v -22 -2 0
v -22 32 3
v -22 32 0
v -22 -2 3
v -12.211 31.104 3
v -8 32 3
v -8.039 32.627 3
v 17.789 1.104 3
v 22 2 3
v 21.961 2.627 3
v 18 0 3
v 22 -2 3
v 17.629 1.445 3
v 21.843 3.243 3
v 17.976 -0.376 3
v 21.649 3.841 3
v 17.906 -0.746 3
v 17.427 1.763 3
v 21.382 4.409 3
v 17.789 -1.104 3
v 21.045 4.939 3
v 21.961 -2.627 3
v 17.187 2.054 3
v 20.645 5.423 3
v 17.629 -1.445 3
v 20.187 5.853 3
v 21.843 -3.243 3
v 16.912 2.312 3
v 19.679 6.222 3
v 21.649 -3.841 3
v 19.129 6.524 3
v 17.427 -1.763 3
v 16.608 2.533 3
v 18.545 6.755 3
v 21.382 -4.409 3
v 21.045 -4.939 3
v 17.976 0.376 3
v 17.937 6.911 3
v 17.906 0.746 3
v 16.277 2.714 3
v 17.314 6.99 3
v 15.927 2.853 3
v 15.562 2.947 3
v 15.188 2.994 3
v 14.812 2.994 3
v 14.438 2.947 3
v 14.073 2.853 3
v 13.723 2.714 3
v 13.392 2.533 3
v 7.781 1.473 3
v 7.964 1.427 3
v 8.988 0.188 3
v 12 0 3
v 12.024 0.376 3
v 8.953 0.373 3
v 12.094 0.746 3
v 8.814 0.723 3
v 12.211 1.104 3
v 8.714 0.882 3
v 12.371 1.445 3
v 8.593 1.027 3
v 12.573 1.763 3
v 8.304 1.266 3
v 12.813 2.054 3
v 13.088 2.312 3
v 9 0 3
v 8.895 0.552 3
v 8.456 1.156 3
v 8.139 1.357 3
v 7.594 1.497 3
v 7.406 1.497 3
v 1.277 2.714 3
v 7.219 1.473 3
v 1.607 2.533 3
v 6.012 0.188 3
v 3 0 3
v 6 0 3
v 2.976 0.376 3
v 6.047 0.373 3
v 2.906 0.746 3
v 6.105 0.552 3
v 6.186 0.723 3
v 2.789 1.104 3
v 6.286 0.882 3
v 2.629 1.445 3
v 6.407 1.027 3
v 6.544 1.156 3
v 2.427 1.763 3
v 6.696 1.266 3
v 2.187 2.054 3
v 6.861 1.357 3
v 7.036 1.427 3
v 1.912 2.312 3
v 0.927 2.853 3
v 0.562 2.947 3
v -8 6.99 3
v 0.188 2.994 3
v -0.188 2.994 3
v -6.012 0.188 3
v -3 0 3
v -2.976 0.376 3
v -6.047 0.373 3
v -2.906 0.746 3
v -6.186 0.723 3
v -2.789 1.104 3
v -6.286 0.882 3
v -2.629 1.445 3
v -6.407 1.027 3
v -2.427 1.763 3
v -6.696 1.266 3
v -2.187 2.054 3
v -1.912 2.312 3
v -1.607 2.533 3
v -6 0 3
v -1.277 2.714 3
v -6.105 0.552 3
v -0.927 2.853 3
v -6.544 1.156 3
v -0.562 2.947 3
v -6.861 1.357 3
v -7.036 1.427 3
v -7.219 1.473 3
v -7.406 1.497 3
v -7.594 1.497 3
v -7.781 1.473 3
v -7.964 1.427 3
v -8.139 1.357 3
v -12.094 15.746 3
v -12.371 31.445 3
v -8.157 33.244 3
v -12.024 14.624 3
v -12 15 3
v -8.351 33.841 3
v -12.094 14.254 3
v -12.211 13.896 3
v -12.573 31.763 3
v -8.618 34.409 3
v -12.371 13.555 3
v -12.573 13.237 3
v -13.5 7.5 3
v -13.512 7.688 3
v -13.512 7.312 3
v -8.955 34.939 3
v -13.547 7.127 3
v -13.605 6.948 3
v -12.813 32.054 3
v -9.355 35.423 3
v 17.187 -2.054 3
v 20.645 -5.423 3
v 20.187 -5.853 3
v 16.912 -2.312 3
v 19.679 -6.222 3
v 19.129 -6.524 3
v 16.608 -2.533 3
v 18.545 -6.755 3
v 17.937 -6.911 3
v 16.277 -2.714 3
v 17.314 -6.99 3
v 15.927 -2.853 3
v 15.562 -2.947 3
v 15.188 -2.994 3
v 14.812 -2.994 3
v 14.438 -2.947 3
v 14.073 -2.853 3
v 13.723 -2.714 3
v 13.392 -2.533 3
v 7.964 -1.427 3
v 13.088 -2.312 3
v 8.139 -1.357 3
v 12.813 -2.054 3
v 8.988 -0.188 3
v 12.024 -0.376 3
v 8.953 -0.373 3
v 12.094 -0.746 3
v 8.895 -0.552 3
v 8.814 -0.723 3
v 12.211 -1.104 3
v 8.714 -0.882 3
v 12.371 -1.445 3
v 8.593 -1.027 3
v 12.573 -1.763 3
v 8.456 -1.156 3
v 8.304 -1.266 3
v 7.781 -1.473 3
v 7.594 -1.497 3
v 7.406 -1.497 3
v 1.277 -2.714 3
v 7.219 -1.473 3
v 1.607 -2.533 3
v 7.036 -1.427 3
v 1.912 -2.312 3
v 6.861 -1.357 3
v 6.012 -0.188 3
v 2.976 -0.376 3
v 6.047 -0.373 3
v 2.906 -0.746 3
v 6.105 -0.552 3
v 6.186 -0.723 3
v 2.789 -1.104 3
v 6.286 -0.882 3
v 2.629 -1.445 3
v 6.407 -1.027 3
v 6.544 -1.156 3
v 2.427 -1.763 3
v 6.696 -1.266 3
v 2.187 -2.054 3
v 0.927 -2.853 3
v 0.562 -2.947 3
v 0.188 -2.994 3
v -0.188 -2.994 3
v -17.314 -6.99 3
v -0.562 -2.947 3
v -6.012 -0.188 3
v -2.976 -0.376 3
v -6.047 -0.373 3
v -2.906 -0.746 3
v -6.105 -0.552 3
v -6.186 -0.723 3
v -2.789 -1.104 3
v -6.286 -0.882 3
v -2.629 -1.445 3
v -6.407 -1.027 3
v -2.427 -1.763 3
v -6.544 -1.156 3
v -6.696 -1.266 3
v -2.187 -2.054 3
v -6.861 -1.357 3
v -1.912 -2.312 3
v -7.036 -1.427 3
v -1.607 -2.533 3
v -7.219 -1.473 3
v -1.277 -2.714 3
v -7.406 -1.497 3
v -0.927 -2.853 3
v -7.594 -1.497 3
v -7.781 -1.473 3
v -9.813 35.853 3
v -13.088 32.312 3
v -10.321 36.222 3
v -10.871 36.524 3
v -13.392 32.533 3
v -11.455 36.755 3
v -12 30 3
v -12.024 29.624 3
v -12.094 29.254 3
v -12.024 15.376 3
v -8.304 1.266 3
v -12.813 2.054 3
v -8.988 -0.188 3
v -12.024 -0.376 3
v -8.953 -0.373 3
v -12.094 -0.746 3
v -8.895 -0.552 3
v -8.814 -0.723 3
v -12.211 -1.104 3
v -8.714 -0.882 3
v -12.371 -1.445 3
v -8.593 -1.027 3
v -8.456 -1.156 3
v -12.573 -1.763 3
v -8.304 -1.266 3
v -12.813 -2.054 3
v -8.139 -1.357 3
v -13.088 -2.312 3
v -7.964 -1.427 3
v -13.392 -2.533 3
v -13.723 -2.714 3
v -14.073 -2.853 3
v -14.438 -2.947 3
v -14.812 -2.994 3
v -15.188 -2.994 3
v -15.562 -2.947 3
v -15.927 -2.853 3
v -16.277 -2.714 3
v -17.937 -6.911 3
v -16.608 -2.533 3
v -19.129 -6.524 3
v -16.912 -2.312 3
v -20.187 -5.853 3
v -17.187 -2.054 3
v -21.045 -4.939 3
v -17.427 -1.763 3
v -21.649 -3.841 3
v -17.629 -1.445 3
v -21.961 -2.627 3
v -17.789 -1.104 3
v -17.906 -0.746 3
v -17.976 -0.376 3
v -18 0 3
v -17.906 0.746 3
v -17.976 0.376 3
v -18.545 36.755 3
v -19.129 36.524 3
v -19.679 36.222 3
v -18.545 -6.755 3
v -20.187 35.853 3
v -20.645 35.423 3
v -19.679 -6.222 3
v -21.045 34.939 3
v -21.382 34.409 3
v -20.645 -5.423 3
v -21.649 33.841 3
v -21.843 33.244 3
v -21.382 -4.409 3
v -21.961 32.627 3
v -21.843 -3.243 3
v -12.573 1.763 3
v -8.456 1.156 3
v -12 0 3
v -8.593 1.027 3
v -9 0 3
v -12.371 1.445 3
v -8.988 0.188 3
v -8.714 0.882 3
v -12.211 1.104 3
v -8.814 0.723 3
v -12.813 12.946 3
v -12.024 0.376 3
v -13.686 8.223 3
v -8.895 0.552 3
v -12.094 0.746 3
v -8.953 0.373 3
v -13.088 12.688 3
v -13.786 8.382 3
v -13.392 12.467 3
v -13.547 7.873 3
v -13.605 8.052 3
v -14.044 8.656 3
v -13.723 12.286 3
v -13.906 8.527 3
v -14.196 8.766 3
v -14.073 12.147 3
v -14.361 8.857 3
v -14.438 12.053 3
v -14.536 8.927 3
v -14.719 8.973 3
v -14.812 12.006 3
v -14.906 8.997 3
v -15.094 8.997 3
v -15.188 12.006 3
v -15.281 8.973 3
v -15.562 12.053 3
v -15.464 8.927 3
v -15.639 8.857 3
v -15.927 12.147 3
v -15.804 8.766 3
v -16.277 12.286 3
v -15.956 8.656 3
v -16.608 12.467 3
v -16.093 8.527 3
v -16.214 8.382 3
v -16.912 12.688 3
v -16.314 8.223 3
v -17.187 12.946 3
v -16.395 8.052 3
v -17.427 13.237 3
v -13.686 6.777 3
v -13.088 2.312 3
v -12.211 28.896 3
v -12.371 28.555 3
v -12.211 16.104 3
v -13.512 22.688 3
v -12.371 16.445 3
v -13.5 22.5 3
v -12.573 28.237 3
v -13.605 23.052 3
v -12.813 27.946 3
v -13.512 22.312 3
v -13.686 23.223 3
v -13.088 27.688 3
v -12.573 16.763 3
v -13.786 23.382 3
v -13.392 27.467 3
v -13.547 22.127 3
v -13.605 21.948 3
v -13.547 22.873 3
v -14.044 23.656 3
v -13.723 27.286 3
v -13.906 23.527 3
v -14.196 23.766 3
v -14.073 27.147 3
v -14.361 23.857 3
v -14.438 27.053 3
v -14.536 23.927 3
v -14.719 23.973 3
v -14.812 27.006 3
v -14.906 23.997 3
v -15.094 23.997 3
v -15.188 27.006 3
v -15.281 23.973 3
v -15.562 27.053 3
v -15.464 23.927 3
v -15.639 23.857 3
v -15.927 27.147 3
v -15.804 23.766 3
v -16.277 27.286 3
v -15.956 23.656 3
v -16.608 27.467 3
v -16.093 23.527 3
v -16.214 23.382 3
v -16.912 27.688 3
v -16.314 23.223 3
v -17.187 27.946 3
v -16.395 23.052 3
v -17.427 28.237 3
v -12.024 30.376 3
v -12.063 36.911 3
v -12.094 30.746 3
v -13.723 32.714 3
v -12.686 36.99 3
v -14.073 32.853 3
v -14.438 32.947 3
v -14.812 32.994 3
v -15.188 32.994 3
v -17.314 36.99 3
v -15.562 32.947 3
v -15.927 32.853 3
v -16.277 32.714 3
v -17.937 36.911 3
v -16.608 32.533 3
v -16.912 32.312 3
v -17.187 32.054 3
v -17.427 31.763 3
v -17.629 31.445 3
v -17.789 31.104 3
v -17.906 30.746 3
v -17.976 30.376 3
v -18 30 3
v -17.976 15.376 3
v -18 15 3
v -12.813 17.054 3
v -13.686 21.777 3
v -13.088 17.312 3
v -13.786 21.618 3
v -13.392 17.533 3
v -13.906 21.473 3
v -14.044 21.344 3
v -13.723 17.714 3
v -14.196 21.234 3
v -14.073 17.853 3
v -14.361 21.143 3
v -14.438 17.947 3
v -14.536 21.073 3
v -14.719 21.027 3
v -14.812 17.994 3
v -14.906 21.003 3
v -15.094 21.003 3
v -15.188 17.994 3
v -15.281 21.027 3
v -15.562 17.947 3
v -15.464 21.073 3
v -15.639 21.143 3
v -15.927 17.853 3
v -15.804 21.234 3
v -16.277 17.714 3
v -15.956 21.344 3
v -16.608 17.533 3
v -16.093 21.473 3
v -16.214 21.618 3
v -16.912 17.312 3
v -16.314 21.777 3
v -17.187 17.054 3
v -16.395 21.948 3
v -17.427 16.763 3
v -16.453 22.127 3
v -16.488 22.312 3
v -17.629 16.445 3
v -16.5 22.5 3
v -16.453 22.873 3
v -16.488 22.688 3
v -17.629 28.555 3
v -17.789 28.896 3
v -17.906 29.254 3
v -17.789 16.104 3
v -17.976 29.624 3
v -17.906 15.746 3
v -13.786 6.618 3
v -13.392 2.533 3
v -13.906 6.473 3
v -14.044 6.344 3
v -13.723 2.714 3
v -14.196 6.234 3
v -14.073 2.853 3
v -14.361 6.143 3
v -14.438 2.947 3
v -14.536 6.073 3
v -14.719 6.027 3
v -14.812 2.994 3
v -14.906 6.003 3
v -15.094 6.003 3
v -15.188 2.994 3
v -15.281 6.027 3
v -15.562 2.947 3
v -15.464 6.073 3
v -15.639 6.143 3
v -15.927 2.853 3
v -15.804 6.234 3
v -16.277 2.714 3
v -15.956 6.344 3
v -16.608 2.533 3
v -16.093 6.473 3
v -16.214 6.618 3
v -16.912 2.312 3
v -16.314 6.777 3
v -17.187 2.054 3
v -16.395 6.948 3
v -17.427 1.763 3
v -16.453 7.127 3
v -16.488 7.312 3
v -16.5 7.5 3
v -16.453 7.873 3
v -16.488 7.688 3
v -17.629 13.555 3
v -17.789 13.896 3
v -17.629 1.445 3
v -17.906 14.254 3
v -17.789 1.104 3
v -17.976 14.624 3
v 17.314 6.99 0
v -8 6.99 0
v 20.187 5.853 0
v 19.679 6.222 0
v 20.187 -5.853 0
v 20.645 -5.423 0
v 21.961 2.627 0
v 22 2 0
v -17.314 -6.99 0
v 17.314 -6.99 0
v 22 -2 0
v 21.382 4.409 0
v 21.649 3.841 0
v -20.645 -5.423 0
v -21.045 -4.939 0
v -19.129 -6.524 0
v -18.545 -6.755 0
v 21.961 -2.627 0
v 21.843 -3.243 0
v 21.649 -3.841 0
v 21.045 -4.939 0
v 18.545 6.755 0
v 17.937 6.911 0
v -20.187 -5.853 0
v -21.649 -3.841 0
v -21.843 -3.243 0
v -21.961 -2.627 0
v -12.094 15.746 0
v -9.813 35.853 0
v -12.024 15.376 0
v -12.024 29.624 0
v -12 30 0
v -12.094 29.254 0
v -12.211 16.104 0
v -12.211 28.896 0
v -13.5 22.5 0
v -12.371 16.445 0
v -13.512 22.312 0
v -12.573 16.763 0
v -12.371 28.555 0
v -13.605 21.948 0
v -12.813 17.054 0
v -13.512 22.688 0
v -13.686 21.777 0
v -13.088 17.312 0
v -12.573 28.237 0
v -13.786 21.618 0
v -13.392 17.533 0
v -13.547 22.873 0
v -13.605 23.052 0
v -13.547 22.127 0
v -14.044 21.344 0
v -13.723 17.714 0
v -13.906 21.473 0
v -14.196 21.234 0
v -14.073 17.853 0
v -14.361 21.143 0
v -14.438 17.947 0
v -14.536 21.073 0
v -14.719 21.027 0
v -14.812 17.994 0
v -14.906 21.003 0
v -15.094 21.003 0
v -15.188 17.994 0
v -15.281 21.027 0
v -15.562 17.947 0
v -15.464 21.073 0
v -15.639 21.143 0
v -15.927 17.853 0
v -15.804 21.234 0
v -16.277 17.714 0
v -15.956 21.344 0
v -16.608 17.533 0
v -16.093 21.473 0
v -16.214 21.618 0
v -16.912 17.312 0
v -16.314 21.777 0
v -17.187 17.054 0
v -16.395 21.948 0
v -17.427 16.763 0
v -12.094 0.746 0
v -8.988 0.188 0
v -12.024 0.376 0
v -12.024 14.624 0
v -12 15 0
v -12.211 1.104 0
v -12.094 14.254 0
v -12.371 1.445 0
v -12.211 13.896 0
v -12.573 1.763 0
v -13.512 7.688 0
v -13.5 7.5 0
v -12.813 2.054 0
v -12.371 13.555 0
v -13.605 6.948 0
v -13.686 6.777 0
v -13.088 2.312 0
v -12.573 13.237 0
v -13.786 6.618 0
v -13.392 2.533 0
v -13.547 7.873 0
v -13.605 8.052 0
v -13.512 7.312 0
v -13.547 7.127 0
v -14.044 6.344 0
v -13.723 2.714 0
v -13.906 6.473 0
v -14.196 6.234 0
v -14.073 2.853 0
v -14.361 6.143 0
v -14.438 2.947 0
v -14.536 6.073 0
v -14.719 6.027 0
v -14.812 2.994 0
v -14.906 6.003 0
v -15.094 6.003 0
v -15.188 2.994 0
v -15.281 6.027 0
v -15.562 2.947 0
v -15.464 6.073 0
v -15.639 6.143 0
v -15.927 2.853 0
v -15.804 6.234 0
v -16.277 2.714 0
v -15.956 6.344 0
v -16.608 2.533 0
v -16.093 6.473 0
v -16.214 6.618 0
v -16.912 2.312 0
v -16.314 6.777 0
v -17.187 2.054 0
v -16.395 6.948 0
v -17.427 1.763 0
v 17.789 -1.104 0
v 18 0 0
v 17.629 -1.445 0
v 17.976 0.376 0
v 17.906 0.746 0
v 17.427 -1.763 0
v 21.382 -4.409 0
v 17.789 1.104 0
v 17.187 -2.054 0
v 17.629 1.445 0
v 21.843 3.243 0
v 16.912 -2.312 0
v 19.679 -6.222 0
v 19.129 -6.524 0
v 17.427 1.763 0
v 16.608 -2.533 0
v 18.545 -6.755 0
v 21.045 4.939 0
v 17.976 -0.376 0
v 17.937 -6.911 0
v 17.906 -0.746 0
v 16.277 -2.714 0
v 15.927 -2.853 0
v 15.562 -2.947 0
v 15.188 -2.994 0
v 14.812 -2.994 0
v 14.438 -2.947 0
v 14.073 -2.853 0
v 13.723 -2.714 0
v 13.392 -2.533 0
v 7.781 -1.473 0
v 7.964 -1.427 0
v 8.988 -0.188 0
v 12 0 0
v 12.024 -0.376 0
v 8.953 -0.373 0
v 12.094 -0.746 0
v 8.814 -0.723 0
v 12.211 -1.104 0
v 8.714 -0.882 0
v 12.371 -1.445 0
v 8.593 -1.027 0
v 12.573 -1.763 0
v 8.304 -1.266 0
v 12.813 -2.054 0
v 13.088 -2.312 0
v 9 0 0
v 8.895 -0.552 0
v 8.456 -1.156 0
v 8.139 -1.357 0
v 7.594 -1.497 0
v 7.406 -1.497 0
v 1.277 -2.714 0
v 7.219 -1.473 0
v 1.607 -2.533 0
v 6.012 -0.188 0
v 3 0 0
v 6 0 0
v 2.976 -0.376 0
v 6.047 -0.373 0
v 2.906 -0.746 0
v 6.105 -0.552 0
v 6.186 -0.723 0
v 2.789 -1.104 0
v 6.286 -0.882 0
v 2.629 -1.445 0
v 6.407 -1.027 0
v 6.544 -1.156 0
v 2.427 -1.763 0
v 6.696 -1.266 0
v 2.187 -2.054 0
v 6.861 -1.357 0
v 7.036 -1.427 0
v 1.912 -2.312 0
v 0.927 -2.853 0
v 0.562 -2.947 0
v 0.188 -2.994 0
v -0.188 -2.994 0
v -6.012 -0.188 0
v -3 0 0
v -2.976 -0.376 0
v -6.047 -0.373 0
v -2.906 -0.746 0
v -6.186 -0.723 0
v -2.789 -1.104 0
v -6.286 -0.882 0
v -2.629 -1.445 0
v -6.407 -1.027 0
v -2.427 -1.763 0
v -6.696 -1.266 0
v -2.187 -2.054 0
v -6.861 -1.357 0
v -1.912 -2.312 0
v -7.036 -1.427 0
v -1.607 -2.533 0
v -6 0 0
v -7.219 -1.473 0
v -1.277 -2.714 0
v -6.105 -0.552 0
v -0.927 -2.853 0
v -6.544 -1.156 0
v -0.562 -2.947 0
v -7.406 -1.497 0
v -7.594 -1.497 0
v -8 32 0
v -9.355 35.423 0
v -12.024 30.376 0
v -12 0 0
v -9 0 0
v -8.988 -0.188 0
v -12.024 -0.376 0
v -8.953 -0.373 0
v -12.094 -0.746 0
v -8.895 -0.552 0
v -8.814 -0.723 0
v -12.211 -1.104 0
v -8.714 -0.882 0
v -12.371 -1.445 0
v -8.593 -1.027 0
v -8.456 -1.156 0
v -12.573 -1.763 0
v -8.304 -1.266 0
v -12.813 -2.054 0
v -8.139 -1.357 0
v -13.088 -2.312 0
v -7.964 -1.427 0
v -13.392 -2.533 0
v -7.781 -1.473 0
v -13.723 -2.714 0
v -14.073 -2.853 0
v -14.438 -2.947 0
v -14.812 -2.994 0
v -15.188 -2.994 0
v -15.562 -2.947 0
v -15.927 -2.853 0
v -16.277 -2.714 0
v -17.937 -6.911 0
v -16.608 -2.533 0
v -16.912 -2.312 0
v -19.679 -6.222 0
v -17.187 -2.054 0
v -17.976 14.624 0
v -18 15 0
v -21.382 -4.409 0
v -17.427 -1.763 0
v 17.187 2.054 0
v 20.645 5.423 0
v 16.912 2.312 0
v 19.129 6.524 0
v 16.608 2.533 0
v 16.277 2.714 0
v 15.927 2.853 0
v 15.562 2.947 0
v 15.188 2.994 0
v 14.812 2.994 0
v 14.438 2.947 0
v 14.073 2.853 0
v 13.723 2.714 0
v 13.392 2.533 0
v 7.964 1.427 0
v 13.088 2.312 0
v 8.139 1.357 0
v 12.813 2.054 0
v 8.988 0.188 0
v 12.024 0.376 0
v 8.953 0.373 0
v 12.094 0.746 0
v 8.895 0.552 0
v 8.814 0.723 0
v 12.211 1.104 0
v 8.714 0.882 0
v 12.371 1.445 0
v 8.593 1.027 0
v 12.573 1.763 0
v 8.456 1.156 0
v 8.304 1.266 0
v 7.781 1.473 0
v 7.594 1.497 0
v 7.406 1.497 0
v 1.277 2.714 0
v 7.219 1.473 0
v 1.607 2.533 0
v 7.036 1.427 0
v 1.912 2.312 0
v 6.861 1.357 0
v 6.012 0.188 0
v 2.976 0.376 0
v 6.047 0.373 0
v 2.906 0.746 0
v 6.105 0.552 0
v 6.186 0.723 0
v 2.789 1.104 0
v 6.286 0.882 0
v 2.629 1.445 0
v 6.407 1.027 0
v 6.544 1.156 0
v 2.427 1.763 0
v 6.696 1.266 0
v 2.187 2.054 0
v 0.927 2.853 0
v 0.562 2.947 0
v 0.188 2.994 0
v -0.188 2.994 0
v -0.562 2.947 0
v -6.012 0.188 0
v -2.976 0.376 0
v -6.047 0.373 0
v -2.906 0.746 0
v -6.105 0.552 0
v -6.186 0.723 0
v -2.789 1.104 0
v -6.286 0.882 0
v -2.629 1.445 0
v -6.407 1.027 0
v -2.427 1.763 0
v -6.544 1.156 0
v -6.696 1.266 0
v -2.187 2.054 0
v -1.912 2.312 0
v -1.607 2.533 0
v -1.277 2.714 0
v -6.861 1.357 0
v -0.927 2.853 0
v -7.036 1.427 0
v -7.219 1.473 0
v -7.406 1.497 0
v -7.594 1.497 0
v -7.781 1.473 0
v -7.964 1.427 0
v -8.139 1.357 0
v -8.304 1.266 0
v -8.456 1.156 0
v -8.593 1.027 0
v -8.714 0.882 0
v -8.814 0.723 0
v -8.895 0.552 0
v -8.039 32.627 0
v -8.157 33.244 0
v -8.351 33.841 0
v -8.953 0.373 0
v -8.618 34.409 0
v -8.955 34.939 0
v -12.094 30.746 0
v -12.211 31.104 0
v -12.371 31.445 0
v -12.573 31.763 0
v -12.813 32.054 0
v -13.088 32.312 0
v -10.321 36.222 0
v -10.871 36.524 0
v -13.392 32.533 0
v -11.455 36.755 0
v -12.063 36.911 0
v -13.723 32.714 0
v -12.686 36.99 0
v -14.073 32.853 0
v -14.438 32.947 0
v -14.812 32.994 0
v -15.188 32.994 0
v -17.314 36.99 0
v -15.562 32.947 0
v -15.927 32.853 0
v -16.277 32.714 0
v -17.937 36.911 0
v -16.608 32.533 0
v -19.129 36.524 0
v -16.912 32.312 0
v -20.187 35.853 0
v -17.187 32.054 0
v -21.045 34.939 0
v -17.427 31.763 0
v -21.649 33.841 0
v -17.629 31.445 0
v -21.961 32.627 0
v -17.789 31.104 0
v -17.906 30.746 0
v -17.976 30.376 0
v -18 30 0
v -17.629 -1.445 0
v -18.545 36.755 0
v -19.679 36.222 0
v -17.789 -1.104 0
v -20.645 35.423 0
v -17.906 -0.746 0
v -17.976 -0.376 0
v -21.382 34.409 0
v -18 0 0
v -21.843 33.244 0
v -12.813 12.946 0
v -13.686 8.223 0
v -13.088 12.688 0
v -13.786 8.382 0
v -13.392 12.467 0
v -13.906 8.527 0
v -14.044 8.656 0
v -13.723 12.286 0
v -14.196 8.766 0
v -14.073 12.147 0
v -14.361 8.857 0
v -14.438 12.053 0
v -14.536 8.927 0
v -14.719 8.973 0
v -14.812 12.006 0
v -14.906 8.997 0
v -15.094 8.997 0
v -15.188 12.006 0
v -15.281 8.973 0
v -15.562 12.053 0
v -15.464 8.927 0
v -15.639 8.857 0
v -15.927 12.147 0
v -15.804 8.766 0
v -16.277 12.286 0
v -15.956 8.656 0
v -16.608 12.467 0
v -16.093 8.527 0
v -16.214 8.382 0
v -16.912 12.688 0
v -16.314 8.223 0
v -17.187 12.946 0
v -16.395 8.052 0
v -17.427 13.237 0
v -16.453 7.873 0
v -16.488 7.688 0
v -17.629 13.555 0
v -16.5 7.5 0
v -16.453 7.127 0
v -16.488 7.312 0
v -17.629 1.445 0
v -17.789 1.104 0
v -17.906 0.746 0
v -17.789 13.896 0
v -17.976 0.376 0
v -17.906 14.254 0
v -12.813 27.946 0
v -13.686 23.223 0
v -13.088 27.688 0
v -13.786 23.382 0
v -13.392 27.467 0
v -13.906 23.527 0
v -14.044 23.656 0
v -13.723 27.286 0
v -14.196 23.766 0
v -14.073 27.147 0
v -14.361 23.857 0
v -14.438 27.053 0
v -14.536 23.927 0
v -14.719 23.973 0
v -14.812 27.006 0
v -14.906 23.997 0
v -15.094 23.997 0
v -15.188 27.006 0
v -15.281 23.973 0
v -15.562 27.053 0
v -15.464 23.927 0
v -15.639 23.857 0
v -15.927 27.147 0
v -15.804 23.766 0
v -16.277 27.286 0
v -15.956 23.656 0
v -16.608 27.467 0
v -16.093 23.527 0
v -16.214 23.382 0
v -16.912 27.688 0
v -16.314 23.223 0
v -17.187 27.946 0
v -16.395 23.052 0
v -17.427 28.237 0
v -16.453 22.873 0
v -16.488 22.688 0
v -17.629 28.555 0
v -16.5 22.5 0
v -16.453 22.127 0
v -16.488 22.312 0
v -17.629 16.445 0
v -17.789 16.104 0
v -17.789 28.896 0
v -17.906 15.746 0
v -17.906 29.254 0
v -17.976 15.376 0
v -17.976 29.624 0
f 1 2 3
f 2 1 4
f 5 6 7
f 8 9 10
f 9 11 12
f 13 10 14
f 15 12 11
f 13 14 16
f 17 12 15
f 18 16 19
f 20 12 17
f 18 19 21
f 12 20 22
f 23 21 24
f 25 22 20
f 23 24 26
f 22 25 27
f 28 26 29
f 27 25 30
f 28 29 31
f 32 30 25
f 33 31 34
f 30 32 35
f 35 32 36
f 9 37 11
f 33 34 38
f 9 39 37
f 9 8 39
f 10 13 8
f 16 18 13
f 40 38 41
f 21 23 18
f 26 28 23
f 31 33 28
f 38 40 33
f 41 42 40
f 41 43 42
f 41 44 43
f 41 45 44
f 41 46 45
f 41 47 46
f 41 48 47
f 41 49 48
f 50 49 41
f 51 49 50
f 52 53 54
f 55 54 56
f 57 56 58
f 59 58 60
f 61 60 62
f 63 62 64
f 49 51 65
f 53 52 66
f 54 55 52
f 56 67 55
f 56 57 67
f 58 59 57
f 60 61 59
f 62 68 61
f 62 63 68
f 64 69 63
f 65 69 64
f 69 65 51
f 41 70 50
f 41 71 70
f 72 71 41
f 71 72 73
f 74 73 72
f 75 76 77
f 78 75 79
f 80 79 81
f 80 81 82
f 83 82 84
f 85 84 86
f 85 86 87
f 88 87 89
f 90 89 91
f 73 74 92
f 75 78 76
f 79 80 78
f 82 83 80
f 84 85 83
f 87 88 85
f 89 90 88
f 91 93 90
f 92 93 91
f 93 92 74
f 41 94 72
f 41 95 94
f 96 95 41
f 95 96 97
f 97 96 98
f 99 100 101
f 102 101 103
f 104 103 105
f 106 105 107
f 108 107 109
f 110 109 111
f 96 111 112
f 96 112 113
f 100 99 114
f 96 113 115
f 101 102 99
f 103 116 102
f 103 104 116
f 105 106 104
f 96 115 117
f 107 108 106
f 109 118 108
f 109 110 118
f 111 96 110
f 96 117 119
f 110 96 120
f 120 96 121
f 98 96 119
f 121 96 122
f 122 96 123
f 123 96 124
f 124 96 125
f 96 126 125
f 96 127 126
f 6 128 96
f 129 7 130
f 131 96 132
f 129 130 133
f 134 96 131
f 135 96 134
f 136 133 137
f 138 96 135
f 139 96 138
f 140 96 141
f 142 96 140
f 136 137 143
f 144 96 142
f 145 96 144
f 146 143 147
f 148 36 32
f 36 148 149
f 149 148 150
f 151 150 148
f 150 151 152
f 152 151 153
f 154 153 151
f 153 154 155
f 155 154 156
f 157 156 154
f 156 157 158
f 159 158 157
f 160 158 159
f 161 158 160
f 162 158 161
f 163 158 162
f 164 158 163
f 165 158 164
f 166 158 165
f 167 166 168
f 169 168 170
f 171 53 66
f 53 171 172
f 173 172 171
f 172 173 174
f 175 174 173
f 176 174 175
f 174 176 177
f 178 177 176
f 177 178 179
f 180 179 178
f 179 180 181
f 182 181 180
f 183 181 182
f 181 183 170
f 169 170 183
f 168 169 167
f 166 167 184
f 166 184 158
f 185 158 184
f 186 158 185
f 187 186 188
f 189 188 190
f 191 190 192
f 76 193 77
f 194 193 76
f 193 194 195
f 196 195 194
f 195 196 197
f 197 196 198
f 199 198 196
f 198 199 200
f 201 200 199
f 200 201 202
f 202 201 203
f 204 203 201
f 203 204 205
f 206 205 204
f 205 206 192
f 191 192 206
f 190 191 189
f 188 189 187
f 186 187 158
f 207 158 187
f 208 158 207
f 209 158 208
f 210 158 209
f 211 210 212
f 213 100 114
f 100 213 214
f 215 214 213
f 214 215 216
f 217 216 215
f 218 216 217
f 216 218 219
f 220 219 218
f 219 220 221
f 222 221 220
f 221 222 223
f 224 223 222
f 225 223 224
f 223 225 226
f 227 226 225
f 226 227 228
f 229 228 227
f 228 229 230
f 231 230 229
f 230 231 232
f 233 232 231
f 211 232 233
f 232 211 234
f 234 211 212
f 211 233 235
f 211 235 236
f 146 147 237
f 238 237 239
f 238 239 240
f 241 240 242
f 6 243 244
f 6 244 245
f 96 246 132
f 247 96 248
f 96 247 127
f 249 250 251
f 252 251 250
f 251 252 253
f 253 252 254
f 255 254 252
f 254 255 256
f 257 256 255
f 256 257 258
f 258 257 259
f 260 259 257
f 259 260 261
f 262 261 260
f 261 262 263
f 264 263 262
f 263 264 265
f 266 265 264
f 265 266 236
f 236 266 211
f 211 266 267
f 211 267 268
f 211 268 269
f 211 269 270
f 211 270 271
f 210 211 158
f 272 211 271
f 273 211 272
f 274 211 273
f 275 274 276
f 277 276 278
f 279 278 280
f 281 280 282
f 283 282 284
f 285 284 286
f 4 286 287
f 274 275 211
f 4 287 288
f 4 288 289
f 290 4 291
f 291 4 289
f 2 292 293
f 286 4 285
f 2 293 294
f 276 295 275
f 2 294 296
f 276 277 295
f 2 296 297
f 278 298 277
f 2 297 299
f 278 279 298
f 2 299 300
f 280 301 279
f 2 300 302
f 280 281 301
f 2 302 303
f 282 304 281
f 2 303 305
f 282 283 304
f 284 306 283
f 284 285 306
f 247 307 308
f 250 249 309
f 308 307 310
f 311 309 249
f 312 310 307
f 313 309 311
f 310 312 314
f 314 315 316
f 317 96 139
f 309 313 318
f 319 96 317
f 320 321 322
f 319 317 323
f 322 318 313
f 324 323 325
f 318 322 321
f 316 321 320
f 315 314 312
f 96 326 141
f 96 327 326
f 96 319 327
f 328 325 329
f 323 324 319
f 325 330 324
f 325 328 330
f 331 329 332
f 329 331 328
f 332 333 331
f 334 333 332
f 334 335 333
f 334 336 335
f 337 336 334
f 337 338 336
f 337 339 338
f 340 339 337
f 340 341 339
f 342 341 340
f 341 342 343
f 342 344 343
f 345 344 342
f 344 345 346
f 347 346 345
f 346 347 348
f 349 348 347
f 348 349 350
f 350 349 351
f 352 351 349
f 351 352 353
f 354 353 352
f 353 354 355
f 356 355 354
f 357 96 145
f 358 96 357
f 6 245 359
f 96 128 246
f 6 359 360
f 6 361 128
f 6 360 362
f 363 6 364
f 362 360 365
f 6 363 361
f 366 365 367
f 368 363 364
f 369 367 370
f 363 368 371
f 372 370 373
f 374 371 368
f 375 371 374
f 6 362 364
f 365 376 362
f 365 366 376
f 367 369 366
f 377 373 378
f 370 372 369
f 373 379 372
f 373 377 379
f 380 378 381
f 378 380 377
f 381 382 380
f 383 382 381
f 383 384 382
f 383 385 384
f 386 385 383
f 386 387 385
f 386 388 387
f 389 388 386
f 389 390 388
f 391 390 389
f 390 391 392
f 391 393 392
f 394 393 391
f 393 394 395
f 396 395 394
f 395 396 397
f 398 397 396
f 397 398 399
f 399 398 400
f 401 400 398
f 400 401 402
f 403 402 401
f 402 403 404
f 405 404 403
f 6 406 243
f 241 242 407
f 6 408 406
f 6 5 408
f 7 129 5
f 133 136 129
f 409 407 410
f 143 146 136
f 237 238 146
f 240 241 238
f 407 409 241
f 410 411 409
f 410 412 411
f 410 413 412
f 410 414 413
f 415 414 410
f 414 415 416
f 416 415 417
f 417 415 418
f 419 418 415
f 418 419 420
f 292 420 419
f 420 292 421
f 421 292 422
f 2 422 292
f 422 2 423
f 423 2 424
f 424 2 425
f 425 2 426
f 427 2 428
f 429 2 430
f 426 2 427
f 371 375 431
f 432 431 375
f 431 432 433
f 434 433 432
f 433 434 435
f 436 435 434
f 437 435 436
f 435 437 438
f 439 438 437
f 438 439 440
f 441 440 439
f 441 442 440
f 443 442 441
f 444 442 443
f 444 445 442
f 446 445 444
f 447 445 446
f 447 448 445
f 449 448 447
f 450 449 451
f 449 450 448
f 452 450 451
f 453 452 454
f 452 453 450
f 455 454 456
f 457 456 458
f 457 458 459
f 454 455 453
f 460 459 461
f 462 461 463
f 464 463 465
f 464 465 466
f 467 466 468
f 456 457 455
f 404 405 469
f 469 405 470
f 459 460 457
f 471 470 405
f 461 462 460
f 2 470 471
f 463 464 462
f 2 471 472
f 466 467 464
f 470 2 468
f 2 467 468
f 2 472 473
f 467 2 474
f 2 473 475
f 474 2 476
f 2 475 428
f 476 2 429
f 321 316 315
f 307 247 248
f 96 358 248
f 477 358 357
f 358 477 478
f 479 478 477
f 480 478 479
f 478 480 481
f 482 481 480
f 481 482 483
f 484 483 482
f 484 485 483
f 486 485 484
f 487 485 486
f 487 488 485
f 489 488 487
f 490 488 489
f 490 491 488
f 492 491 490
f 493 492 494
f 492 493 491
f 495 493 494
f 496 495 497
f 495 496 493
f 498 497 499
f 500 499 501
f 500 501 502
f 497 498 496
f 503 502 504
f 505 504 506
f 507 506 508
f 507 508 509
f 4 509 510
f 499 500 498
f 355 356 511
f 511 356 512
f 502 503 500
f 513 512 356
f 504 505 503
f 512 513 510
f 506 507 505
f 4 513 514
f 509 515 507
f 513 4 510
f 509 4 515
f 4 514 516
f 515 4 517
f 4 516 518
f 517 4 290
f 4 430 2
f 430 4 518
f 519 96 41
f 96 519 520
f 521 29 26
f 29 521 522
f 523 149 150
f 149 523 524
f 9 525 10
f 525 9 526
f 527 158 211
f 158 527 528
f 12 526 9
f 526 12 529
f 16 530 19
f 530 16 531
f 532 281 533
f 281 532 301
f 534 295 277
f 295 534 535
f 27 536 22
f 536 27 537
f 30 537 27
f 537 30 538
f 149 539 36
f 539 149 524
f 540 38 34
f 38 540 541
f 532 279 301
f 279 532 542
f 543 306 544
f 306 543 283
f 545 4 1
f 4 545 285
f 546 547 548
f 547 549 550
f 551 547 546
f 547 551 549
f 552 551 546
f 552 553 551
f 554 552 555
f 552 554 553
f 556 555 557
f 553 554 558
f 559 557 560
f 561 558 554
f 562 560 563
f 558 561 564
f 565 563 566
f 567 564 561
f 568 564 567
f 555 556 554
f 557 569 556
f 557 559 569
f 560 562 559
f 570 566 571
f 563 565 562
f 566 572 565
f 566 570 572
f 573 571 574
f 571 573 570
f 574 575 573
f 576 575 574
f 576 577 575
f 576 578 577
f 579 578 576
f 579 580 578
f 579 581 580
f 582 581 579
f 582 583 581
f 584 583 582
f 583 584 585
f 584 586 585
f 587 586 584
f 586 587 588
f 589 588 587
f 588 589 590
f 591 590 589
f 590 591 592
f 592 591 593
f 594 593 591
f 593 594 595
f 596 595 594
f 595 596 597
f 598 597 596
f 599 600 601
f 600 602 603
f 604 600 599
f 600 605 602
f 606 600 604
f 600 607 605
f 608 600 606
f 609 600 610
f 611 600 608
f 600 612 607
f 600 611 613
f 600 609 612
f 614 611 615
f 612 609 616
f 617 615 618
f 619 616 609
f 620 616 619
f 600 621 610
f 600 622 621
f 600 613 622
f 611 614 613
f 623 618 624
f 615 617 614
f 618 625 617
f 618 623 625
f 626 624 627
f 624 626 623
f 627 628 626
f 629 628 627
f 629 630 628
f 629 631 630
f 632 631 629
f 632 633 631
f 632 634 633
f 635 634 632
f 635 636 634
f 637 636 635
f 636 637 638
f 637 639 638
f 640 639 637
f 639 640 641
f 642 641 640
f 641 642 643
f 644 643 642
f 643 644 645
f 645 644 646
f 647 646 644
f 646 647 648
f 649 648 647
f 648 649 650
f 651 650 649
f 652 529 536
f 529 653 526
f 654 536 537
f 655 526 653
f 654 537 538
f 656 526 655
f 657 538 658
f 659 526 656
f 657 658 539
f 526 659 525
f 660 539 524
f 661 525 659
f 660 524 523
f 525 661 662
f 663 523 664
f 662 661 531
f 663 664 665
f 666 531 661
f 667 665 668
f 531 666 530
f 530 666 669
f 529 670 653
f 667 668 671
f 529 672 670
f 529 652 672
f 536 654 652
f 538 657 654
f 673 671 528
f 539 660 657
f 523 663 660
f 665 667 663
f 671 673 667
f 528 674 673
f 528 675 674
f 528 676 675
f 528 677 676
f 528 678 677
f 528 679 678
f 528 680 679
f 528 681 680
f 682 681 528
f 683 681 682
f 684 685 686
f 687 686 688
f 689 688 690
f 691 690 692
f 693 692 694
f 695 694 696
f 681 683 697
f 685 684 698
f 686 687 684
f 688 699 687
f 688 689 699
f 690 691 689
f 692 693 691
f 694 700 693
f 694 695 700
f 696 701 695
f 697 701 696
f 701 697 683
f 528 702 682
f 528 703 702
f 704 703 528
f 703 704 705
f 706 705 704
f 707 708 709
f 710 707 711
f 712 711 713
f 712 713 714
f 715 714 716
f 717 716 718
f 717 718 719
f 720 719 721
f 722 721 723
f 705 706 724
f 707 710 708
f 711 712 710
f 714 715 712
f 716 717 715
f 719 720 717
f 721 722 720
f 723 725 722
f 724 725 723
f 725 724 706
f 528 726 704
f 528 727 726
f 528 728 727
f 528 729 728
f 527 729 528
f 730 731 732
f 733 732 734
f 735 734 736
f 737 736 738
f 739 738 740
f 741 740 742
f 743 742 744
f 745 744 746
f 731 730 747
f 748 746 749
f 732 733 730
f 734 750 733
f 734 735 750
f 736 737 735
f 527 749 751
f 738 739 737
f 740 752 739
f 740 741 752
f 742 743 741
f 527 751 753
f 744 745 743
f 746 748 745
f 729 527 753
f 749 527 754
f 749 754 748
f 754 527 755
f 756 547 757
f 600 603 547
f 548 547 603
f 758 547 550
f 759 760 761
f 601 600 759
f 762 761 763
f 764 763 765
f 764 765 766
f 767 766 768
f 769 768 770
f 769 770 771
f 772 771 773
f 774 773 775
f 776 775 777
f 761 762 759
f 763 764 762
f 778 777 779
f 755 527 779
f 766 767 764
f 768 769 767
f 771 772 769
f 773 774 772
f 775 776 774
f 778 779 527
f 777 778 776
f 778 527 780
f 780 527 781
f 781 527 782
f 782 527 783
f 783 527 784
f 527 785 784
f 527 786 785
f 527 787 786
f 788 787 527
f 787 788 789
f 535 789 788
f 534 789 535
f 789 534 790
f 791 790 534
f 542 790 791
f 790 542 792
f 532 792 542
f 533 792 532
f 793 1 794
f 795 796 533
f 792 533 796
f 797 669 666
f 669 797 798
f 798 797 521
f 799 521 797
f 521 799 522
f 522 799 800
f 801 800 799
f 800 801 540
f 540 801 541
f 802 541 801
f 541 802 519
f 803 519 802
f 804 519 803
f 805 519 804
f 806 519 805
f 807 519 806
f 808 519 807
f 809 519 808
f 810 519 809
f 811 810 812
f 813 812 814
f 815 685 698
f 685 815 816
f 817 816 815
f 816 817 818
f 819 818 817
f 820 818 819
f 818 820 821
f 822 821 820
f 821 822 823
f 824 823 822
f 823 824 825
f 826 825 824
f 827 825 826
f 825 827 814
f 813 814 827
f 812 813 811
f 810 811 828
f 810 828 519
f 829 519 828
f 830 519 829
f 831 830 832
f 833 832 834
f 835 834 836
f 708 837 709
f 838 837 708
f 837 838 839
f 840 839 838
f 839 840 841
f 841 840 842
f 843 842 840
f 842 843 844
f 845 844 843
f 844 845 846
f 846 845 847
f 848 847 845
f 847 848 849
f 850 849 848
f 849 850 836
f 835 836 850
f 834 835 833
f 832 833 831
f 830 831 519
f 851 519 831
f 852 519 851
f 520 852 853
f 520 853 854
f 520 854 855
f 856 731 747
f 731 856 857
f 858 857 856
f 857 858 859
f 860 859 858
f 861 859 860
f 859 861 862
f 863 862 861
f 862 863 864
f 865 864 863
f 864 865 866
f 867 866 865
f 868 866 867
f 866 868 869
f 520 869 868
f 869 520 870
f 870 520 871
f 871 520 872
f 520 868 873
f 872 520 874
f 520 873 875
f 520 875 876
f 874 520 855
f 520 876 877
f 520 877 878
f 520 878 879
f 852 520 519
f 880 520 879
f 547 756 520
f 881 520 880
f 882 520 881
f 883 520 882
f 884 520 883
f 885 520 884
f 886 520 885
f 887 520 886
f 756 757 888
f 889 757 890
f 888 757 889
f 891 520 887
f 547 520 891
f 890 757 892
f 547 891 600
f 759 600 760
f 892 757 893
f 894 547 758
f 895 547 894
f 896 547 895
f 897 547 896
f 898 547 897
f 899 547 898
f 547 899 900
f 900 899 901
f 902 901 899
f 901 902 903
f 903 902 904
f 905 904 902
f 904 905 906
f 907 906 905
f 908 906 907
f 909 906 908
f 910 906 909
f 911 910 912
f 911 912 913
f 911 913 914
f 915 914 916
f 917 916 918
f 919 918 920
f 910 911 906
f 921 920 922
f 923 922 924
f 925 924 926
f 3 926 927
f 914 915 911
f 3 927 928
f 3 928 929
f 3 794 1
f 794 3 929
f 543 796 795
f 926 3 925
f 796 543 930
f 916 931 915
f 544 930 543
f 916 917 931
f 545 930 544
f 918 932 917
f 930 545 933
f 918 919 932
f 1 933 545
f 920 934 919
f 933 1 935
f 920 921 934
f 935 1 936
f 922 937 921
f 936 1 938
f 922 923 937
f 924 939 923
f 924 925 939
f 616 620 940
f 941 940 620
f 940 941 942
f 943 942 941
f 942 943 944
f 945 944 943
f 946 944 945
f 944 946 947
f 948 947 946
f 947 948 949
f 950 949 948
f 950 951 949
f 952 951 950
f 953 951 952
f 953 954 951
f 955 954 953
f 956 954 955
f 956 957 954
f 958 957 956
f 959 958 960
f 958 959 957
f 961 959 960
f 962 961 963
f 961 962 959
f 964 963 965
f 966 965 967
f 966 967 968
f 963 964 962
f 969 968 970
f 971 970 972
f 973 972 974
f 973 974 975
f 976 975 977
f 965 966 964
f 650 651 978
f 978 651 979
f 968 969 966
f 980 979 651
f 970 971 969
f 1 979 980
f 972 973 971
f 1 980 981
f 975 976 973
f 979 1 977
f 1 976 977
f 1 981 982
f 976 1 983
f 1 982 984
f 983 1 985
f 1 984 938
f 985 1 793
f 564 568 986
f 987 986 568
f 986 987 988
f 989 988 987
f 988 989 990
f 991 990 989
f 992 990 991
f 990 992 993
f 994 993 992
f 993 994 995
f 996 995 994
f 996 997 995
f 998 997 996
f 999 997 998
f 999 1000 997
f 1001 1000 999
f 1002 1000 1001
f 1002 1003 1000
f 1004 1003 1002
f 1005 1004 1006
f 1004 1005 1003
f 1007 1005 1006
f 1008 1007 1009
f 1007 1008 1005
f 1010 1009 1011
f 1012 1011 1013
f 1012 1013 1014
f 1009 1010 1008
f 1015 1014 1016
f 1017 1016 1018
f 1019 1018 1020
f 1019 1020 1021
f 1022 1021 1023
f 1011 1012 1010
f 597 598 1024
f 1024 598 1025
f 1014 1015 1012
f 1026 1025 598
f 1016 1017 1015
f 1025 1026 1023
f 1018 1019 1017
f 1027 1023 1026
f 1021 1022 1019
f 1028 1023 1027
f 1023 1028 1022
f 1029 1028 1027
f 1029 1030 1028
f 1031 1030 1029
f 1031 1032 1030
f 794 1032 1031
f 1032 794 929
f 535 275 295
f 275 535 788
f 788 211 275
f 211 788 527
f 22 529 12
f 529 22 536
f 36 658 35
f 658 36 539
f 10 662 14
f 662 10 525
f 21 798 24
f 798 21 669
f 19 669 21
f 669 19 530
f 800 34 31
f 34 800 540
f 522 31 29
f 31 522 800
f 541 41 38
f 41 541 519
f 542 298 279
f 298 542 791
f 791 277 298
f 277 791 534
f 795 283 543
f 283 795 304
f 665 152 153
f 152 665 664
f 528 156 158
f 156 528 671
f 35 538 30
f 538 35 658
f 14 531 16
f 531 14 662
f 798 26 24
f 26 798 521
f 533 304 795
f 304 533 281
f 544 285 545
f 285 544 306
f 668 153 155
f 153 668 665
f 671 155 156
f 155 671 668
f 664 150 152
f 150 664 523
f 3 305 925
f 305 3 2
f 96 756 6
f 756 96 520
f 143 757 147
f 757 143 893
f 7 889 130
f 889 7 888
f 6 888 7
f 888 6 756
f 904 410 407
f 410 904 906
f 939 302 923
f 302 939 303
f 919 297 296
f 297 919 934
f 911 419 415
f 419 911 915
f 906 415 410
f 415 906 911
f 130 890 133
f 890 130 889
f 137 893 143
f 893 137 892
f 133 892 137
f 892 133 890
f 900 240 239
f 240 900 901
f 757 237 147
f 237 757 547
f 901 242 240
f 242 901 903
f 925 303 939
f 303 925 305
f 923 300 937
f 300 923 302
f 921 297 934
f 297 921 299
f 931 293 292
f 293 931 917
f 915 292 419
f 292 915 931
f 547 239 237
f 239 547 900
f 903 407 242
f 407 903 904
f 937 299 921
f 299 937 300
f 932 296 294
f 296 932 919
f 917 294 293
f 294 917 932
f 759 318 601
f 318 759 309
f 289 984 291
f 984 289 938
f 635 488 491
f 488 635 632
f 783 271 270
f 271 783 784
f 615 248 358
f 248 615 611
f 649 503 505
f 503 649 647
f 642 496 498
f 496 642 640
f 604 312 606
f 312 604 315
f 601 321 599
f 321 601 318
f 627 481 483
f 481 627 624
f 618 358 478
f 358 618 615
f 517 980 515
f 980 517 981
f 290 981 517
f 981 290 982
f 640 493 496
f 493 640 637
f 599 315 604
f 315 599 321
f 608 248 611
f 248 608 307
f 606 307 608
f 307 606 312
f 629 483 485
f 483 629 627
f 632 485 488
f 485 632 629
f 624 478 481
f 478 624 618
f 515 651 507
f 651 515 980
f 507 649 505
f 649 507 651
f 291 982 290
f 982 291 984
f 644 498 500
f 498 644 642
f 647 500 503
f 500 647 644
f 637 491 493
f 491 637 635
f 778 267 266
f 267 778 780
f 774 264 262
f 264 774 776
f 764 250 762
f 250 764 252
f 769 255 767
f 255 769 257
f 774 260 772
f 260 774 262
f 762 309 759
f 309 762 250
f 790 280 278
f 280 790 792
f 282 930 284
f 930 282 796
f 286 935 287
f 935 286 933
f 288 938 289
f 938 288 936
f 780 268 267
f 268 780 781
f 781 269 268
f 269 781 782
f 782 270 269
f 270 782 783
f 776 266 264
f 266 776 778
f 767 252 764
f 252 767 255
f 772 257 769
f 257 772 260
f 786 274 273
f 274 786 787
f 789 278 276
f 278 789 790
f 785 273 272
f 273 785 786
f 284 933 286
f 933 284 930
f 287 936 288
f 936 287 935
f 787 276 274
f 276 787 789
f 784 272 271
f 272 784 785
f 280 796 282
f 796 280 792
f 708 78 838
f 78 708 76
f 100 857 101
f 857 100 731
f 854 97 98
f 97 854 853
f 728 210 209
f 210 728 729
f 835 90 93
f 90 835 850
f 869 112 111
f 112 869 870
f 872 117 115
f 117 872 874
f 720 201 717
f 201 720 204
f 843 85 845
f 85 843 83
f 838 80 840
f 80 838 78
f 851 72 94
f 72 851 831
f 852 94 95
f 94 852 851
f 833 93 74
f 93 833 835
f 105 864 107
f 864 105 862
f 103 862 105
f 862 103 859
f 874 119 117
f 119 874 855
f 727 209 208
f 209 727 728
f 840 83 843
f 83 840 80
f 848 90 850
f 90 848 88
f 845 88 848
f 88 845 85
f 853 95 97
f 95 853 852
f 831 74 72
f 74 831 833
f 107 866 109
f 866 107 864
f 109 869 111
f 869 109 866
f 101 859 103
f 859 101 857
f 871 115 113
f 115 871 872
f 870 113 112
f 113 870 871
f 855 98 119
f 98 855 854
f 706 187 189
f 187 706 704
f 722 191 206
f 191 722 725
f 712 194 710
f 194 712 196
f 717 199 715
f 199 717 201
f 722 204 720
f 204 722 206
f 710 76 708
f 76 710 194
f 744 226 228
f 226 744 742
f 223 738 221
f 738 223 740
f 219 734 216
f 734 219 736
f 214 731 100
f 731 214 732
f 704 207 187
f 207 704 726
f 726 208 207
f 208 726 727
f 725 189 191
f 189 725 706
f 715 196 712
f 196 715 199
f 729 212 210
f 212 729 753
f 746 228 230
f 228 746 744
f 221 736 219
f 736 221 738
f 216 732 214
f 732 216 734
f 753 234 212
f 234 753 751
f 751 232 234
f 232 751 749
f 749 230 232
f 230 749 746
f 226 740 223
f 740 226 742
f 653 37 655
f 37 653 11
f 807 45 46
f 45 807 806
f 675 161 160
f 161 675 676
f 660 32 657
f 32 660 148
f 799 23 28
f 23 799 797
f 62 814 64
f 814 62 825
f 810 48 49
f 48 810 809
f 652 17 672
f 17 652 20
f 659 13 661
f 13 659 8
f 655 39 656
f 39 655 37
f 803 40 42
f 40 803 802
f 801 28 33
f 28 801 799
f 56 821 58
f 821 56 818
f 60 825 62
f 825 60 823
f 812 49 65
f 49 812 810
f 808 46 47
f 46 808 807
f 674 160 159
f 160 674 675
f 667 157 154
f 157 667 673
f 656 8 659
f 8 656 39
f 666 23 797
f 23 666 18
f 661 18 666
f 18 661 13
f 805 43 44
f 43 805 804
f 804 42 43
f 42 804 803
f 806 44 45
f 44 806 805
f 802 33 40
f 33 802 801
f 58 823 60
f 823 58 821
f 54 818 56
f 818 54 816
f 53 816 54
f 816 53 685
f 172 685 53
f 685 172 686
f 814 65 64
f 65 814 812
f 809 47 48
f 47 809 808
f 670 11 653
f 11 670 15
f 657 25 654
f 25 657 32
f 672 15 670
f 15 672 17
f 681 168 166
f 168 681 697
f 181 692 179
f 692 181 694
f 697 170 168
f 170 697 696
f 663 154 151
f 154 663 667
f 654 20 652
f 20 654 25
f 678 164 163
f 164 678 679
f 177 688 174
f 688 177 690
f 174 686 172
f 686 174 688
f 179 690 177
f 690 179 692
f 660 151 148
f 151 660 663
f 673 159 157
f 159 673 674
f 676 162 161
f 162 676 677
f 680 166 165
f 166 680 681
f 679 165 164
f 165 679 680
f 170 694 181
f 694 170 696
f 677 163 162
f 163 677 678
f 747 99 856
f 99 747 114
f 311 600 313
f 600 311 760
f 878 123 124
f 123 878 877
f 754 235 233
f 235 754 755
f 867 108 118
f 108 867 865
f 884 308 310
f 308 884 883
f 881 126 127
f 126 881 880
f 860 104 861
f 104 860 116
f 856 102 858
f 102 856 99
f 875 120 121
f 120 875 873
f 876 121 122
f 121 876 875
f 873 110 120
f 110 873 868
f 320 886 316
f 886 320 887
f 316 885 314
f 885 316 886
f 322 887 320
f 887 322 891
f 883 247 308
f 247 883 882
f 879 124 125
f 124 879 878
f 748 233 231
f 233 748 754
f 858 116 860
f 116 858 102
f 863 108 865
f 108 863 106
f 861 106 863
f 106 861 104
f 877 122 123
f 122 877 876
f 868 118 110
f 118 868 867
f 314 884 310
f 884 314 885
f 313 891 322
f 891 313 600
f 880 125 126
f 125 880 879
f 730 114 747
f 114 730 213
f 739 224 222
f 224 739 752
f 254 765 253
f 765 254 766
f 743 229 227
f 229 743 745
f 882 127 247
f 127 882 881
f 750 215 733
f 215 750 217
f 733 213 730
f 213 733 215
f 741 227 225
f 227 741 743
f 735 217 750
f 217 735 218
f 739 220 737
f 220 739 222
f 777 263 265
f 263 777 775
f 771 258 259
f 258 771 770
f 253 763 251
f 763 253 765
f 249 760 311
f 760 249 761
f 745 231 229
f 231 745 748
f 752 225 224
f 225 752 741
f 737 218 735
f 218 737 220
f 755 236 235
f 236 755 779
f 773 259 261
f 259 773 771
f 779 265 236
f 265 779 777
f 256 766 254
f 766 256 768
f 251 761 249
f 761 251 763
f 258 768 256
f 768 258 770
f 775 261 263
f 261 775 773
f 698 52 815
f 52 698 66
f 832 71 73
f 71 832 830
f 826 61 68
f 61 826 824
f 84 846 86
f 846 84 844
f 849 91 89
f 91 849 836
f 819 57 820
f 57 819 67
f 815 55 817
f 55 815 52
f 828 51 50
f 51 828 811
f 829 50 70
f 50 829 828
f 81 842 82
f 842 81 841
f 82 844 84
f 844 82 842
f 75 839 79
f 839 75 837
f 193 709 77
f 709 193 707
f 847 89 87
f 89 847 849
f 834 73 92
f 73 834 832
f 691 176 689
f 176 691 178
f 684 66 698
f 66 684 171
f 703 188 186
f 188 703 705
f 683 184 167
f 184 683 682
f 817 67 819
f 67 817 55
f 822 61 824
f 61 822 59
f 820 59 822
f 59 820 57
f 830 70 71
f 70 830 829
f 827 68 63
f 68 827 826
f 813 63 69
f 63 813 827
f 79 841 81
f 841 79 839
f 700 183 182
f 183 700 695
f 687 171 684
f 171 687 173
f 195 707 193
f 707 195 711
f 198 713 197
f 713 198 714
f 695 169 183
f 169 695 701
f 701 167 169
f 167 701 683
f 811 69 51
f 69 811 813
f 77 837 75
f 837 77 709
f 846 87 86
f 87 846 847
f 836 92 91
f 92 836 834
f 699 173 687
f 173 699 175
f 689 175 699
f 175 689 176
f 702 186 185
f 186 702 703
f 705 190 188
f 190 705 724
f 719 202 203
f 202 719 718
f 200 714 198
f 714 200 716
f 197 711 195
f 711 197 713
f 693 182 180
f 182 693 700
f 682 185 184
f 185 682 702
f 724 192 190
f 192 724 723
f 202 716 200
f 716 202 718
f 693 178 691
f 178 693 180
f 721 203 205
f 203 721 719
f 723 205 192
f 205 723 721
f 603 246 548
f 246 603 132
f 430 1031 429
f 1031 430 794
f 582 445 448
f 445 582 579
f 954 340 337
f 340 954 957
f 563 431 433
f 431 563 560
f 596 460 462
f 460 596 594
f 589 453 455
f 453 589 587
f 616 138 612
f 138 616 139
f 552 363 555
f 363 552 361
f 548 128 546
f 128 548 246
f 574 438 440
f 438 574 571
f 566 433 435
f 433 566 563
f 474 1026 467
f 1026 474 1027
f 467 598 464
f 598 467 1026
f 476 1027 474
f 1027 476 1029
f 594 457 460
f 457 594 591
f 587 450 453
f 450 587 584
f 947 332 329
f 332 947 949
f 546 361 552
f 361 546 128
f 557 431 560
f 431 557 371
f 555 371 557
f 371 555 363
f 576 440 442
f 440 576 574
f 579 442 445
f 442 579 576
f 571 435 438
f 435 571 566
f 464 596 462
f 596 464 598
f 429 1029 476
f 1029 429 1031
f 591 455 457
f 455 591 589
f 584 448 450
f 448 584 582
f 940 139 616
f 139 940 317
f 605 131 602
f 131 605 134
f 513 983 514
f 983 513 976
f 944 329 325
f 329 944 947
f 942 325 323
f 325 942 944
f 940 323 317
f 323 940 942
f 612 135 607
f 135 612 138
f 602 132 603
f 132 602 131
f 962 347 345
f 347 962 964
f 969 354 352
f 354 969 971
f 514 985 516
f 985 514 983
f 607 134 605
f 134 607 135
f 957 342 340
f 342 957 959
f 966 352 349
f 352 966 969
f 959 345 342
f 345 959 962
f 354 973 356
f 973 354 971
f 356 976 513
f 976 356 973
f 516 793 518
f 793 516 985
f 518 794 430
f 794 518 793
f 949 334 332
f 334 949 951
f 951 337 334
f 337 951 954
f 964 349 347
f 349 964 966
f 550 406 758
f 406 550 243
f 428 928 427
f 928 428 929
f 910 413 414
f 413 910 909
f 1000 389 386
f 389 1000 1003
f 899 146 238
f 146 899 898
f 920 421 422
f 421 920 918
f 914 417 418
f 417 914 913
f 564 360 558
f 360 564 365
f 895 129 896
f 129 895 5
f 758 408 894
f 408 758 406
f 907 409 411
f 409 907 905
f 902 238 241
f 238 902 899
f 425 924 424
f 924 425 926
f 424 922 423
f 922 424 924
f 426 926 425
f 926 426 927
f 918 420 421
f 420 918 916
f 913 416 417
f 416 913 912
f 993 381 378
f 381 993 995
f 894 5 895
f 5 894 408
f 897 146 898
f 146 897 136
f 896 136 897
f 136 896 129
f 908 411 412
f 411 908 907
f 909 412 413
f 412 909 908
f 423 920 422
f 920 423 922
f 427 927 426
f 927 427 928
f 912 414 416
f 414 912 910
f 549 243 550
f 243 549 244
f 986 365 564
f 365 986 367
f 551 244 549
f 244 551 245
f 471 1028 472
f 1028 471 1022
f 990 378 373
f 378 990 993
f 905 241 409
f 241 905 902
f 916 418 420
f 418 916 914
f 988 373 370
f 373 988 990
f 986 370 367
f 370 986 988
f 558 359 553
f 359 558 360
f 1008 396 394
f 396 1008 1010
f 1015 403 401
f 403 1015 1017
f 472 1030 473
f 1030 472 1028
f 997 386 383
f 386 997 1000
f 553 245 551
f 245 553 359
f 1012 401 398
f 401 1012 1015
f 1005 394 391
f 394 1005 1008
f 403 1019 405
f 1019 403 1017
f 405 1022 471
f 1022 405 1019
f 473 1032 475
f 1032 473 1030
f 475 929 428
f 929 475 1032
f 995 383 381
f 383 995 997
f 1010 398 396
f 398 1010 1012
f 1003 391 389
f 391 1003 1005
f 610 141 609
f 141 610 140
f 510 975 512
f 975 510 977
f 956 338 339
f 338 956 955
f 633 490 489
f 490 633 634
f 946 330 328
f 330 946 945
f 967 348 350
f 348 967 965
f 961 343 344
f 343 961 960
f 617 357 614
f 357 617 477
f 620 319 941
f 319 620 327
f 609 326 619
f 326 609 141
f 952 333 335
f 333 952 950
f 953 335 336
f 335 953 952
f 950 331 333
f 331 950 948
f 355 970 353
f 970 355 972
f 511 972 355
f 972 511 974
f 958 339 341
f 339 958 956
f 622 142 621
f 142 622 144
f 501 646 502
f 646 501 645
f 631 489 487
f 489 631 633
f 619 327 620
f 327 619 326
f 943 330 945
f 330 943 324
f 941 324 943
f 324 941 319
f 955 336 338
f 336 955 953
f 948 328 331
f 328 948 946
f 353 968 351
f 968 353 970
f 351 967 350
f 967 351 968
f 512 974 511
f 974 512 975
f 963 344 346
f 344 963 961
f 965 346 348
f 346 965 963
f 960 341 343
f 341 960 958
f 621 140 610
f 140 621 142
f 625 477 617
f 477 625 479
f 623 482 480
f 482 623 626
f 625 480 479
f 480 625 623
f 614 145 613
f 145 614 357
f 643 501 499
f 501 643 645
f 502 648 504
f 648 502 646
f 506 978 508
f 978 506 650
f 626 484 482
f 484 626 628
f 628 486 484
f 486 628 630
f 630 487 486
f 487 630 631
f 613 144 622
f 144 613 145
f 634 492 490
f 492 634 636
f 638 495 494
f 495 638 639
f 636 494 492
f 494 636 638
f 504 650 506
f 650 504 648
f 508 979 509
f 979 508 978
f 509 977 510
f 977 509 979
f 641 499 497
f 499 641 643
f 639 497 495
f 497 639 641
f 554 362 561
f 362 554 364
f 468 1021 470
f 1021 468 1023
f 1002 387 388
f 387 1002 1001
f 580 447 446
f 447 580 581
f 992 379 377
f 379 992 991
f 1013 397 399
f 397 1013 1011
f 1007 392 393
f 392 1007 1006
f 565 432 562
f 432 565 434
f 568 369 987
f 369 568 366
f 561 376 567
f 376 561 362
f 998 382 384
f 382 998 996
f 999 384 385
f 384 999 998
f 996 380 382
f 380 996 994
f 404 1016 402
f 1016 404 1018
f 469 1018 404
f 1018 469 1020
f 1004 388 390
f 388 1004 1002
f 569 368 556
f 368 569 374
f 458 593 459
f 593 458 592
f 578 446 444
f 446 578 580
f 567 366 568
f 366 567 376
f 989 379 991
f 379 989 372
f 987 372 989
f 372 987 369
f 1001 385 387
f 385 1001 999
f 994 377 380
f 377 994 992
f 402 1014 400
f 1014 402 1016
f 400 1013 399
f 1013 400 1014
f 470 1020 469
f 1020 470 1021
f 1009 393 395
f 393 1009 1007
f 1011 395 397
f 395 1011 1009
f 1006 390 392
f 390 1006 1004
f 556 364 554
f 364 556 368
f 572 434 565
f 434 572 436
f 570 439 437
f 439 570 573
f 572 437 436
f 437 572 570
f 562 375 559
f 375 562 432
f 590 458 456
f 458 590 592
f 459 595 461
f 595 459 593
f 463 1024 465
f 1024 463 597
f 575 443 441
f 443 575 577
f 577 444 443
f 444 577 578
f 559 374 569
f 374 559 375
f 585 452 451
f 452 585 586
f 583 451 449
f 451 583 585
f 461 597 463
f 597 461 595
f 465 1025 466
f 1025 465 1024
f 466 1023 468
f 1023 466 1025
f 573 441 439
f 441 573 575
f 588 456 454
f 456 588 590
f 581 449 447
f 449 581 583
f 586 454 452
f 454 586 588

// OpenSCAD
$fn = 50;


difference() {
	union() {
		*color(alpha = 1.0000000000, c = "gray") {
			translate(v = [0, 7, 0]) {
				linear_extrude(height = 1) {
					text(font = "Arial:style=Bold", halign = "center", size = 4.5000000000, text = "COMMENT plate main", valign = "center");
				}
			}
		}
		hull() {
			translate(v = [-17.0000000000, 2.0000000000, 0]) {
				cylinder(h = 3, r = 5);
			}
			translate(v = [17.0000000000, 2.0000000000, 0]) {
				cylinder(h = 3, r = 5);
			}
			translate(v = [-17.0000000000, -2.0000000000, 0]) {
				cylinder(h = 3, r = 5);
			}
			translate(v = [17.0000000000, -2.0000000000, 0]) {
				cylinder(h = 3, r = 5);
			}
		}
		*color(alpha = 1.0000000000, c = "gray") {
			translate(v = [0, 7, 0]) {
				linear_extrude(height = 1) {
					text(font = "Arial:style=Bold", halign = "center", size = 4.5000000000, text = "COMMENT plate main", valign = "center");
				}
			}
		}
		translate(v = [-15.0000000000, 15.0000000000, 0]) {
			hull() {
				translate(v = [-2.0000000000, 17.0000000000, 0]) {
					cylinder(h = 3, r = 5);
				}
				translate(v = [2.0000000000, 17.0000000000, 0]) {
					cylinder(h = 3, r = 5);
				}
				translate(v = [-2.0000000000, -17.0000000000, 0]) {
					cylinder(h = 3, r = 5);
				}
				translate(v = [2.0000000000, -17.0000000000, 0]) {
					cylinder(h = 3, r = 5);
				}
			}
		}
	}
	union() {
		*color(alpha = 1.0000000000, c = "gray") {
			translate(v = [0, 7, 0]) {
				linear_extrude(height = 1) {
					text(font = "Arial:style=Bold", halign = "center", size = 4.5000000000, text = "COMMENT holes main", valign = "center");
				}
			}
		}
		translate(v = [-15.0000000000, 0.0000000000, 0]) {
			translate(v = [0, 0, -50]) {
				cylinder(h = 100, r = 3.0000000000);
			}
		}
		translate(v = [0, 0, -50]) {
			cylinder(h = 100, r = 3.0000000000);
		}
		translate(v = [15.0000000000, 0.0000000000, 0]) {
			translate(v = [0, 0, -50]) {
				cylinder(h = 100, r = 3.0000000000);
			}
		}
		translate(v = [-15.0000000000, 0.0000000000, 0]) {
			translate(v = [0, 0, -50]) {
				cylinder(h = 100, r = 1.5000000000);
			}
		}
		translate(v = [-7.5000000000, 0.0000000000, 0]) {
			translate(v = [0, 0, -50]) {
				cylinder(h = 100, r = 1.5000000000);
			}
		}
		translate(v = [0, 0, -50]) {
			cylinder(h = 100, r = 1.5000000000);
		}
		translate(v = [7.5000000000, 0.0000000000, 0]) {
			translate(v = [0, 0, -50]) {
				cylinder(h = 100, r = 1.5000000000);
			}
		}
		translate(v = [15.0000000000, 0.0000000000, 0]) {
			translate(v = [0, 0, -50]) {
				cylinder(h = 100, r = 1.5000000000);
			}
		}
		*color(alpha = 1.0000000000, c = "gray") {
			translate(v = [0, 7, 0]) {
				linear_extrude(height = 1) {
					text(font = "Arial:style=Bold", halign = "center", size = 4.5000000000, text = "COMMENT holes main", valign = "center");
				}
			}
		}
		translate(v = [-15.0000000000, 0.0000000000, 0]) {
			translate(v = [0, 0, -50]) {
				cylinder(h = 100, r = 3.0000000000);
			}
		}
		translate(v = [-15.0000000000, 15.0000000000, 0]) {
			translate(v = [0, 0, -50]) {
				cylinder(h = 100, r = 3.0000000000);
			}
		}
		translate(v = [-15.0000000000, 30.0000000000, 0]) {
			translate(v = [0, 0, -50]) {
				cylinder(h = 100, r = 3.0000000000);
			}
		}
		translate(v = [-15.0000000000, 0.0000000000, 0]) {
			translate(v = [0, 0, -50]) {
				cylinder(h = 100, r = 1.5000000000);
			}
		}
		translate(v = [-15.0000000000, 7.5000000000, 0]) {
			translate(v = [0, 0, -50]) {
				cylinder(h = 100, r = 1.5000000000);
			}
		}
		translate(v = [-15.0000000000, 15.0000000000, 0]) {
			translate(v = [0, 0, -50]) {
				cylinder(h = 100, r = 1.5000000000);
			}
		}
		translate(v = [-15.0000000000, 22.5000000000, 0]) {
			translate(v = [0, 0, -50]) {
				cylinder(h = 100, r = 1.5000000000);
			}
		}
		translate(v = [-15.0000000000, 30.0000000000, 0]) {
			translate(v = [0, 0, -50]) {
				cylinder(h = 100, r = 1.5000000000);
			}
		}
	}
}
